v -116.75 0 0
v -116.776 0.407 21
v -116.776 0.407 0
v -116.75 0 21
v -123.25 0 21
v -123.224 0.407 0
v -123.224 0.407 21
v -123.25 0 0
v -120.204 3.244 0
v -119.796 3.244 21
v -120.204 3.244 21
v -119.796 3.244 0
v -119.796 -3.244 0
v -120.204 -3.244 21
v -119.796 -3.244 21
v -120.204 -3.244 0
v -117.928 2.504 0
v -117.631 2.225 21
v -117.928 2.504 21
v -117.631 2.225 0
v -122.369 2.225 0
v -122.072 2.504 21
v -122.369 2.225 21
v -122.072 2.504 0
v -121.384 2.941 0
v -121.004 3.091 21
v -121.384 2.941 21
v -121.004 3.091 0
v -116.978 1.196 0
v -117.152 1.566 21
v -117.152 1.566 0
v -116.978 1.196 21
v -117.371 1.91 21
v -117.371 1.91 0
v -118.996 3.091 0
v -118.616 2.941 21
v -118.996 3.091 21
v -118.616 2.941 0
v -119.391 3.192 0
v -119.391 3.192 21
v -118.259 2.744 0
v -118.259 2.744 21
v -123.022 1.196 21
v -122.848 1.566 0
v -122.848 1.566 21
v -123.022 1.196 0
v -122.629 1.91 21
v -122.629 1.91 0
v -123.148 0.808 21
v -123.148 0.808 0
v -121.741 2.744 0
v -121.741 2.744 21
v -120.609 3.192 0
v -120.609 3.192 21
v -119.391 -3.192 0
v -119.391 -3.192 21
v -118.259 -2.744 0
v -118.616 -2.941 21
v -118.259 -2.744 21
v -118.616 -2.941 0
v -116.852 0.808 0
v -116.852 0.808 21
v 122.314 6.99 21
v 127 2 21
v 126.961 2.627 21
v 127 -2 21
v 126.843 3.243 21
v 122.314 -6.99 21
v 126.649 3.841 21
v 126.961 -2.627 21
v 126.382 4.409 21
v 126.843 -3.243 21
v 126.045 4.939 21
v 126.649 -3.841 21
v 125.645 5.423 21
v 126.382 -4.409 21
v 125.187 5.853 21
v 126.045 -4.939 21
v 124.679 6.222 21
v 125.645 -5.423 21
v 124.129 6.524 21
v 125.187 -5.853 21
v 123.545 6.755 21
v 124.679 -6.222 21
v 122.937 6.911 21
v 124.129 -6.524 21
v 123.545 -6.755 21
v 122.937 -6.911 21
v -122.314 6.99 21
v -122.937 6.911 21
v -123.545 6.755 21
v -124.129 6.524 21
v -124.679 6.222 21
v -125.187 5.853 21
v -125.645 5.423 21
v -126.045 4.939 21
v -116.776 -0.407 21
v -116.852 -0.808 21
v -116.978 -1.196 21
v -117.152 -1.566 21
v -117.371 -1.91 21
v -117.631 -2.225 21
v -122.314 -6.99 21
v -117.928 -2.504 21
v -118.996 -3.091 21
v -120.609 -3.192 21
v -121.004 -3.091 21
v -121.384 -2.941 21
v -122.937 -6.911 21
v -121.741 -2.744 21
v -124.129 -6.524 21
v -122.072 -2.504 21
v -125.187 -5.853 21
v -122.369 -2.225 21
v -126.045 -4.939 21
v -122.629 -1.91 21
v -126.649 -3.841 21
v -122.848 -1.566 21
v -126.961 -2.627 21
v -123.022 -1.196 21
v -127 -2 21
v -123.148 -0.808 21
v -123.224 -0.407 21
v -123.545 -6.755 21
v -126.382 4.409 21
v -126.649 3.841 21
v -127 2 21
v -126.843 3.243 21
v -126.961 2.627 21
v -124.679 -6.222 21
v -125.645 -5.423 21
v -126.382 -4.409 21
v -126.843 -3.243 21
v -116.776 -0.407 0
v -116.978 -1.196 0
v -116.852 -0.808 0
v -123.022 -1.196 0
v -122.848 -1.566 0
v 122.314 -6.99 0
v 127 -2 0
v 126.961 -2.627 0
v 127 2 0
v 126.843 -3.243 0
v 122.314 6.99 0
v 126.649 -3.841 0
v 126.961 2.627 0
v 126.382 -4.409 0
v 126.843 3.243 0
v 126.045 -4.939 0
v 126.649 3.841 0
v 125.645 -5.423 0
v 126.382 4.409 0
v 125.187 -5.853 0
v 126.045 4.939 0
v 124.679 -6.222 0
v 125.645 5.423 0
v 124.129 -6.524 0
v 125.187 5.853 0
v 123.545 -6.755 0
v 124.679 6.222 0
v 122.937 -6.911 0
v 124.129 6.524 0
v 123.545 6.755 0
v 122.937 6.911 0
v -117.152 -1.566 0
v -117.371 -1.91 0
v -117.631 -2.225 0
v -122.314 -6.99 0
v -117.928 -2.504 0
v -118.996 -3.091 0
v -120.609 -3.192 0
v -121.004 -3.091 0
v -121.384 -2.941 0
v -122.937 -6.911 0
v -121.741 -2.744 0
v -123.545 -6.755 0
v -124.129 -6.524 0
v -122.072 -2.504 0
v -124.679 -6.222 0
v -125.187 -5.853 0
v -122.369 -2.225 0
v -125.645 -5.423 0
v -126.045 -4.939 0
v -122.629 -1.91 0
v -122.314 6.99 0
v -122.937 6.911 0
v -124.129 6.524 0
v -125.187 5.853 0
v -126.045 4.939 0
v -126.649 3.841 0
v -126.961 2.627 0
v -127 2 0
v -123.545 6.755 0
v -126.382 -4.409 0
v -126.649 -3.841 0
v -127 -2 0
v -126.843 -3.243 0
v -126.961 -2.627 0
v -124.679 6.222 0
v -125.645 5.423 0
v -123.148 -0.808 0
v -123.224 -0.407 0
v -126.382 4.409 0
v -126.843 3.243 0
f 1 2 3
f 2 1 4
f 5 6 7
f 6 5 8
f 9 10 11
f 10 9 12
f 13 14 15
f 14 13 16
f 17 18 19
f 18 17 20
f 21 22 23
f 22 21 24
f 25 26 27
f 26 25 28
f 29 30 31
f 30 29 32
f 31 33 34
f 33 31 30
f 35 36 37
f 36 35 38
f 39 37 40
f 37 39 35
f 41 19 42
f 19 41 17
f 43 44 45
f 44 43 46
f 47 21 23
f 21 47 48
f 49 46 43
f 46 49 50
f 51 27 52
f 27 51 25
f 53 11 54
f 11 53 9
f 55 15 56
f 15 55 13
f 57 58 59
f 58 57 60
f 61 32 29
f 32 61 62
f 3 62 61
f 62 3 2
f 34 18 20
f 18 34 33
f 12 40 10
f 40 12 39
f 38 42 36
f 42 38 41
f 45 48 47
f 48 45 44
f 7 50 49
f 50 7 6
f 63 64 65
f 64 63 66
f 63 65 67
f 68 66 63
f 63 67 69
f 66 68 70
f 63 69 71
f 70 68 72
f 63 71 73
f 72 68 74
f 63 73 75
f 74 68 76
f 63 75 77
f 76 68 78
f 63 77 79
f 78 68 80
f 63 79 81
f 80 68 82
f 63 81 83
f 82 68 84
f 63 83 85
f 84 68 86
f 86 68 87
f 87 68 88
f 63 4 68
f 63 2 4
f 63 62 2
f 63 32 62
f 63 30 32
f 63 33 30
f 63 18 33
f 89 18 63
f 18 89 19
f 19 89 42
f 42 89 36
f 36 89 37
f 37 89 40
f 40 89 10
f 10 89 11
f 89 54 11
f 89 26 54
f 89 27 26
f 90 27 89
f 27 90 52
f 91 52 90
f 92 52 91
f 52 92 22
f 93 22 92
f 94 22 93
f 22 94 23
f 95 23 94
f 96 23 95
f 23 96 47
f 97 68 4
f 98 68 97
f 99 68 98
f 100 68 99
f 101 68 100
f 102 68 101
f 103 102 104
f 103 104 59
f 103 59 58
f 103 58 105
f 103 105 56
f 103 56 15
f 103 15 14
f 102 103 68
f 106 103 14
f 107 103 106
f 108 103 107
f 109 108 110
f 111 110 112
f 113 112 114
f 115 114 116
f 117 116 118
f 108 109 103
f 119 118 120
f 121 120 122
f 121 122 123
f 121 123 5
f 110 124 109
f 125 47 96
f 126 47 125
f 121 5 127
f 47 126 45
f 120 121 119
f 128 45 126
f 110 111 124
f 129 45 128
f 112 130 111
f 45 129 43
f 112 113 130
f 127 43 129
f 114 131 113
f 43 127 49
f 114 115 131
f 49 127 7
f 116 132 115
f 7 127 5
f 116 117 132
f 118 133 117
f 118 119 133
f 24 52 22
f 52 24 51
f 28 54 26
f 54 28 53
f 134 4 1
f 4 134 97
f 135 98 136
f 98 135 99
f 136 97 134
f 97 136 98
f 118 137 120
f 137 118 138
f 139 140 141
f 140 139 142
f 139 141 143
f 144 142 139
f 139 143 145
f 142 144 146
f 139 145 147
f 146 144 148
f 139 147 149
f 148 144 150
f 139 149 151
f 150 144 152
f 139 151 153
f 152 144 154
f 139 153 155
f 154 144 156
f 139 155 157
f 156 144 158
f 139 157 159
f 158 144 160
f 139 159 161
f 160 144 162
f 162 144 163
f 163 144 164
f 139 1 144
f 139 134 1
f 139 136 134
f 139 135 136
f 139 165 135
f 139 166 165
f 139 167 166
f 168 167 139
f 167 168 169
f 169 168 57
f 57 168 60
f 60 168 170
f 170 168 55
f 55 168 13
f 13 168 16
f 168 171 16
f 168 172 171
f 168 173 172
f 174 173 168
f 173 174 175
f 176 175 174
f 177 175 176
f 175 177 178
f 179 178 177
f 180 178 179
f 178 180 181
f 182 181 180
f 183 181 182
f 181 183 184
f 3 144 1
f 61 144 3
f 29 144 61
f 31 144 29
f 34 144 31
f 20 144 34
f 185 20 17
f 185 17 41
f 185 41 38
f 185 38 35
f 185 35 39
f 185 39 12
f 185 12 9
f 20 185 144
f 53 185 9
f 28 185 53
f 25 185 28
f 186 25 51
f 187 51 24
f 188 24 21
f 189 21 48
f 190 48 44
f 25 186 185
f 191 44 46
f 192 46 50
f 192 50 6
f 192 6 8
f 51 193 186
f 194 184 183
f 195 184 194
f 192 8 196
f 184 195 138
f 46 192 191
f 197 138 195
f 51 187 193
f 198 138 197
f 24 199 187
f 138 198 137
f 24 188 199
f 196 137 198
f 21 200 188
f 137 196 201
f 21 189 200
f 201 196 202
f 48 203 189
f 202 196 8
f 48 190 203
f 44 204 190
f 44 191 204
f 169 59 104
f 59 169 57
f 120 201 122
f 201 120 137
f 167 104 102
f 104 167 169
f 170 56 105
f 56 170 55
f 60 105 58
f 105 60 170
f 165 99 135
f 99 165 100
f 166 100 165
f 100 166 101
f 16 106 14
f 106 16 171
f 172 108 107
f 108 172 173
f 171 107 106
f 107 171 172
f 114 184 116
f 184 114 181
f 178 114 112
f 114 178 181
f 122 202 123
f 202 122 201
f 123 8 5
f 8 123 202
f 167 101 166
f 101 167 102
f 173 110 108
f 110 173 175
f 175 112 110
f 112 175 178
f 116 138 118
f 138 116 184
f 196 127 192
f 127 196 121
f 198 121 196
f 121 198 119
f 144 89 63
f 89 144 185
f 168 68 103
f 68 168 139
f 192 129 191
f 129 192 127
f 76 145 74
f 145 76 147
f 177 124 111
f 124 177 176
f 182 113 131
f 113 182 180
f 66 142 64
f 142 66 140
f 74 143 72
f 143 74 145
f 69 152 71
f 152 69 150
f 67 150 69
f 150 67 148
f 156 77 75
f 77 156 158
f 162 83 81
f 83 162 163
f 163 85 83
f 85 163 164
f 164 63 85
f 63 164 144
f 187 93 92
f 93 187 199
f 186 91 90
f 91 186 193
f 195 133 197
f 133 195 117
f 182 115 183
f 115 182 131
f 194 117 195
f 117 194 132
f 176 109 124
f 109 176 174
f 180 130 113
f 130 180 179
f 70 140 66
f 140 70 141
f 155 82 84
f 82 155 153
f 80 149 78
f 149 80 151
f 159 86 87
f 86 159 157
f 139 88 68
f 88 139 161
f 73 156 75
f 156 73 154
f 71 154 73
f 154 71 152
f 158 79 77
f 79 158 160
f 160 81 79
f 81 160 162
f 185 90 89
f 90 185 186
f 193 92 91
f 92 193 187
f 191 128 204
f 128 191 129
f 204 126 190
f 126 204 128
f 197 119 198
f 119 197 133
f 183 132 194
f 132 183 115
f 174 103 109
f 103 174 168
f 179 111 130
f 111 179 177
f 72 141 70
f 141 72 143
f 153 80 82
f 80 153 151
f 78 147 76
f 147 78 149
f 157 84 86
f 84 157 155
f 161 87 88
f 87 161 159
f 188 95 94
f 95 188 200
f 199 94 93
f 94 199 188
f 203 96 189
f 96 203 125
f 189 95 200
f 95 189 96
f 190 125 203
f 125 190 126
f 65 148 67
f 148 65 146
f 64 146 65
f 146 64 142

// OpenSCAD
$fn = 50;


difference() {
	union() {
		hull() {
			translate(v = [-122.0000000000, 2.0000000000, 0]) {
				cylinder(h = 21, r = 5);
			}
			translate(v = [122.0000000000, 2.0000000000, 0]) {
				cylinder(h = 21, r = 5);
			}
			translate(v = [-122.0000000000, -2.0000000000, 0]) {
				cylinder(h = 21, r = 5);
			}
			translate(v = [122.0000000000, -2.0000000000, 0]) {
				cylinder(h = 21, r = 5);
			}
		}
	}
	union() {
		translate(v = [-120.0000000000, 0.0000000000, 0]) {
			cylinder(h = 21, r = 3.2500000000);
		}
		translate(v = [-120.0000000000, 0.0000000000, 0]) {
			cylinder(h = 21, r = 1.8000000000);
		}
		translate(v = [-120.0000000000, 0.0000000000, 0]) {
			cylinder(h = 21, r = 1.8000000000);
		}
		translate(v = [-120.0000000000, 0.0000000000, 0]) {
			cylinder(h = 21, r = 1.8000000000);
		}
	}
}
